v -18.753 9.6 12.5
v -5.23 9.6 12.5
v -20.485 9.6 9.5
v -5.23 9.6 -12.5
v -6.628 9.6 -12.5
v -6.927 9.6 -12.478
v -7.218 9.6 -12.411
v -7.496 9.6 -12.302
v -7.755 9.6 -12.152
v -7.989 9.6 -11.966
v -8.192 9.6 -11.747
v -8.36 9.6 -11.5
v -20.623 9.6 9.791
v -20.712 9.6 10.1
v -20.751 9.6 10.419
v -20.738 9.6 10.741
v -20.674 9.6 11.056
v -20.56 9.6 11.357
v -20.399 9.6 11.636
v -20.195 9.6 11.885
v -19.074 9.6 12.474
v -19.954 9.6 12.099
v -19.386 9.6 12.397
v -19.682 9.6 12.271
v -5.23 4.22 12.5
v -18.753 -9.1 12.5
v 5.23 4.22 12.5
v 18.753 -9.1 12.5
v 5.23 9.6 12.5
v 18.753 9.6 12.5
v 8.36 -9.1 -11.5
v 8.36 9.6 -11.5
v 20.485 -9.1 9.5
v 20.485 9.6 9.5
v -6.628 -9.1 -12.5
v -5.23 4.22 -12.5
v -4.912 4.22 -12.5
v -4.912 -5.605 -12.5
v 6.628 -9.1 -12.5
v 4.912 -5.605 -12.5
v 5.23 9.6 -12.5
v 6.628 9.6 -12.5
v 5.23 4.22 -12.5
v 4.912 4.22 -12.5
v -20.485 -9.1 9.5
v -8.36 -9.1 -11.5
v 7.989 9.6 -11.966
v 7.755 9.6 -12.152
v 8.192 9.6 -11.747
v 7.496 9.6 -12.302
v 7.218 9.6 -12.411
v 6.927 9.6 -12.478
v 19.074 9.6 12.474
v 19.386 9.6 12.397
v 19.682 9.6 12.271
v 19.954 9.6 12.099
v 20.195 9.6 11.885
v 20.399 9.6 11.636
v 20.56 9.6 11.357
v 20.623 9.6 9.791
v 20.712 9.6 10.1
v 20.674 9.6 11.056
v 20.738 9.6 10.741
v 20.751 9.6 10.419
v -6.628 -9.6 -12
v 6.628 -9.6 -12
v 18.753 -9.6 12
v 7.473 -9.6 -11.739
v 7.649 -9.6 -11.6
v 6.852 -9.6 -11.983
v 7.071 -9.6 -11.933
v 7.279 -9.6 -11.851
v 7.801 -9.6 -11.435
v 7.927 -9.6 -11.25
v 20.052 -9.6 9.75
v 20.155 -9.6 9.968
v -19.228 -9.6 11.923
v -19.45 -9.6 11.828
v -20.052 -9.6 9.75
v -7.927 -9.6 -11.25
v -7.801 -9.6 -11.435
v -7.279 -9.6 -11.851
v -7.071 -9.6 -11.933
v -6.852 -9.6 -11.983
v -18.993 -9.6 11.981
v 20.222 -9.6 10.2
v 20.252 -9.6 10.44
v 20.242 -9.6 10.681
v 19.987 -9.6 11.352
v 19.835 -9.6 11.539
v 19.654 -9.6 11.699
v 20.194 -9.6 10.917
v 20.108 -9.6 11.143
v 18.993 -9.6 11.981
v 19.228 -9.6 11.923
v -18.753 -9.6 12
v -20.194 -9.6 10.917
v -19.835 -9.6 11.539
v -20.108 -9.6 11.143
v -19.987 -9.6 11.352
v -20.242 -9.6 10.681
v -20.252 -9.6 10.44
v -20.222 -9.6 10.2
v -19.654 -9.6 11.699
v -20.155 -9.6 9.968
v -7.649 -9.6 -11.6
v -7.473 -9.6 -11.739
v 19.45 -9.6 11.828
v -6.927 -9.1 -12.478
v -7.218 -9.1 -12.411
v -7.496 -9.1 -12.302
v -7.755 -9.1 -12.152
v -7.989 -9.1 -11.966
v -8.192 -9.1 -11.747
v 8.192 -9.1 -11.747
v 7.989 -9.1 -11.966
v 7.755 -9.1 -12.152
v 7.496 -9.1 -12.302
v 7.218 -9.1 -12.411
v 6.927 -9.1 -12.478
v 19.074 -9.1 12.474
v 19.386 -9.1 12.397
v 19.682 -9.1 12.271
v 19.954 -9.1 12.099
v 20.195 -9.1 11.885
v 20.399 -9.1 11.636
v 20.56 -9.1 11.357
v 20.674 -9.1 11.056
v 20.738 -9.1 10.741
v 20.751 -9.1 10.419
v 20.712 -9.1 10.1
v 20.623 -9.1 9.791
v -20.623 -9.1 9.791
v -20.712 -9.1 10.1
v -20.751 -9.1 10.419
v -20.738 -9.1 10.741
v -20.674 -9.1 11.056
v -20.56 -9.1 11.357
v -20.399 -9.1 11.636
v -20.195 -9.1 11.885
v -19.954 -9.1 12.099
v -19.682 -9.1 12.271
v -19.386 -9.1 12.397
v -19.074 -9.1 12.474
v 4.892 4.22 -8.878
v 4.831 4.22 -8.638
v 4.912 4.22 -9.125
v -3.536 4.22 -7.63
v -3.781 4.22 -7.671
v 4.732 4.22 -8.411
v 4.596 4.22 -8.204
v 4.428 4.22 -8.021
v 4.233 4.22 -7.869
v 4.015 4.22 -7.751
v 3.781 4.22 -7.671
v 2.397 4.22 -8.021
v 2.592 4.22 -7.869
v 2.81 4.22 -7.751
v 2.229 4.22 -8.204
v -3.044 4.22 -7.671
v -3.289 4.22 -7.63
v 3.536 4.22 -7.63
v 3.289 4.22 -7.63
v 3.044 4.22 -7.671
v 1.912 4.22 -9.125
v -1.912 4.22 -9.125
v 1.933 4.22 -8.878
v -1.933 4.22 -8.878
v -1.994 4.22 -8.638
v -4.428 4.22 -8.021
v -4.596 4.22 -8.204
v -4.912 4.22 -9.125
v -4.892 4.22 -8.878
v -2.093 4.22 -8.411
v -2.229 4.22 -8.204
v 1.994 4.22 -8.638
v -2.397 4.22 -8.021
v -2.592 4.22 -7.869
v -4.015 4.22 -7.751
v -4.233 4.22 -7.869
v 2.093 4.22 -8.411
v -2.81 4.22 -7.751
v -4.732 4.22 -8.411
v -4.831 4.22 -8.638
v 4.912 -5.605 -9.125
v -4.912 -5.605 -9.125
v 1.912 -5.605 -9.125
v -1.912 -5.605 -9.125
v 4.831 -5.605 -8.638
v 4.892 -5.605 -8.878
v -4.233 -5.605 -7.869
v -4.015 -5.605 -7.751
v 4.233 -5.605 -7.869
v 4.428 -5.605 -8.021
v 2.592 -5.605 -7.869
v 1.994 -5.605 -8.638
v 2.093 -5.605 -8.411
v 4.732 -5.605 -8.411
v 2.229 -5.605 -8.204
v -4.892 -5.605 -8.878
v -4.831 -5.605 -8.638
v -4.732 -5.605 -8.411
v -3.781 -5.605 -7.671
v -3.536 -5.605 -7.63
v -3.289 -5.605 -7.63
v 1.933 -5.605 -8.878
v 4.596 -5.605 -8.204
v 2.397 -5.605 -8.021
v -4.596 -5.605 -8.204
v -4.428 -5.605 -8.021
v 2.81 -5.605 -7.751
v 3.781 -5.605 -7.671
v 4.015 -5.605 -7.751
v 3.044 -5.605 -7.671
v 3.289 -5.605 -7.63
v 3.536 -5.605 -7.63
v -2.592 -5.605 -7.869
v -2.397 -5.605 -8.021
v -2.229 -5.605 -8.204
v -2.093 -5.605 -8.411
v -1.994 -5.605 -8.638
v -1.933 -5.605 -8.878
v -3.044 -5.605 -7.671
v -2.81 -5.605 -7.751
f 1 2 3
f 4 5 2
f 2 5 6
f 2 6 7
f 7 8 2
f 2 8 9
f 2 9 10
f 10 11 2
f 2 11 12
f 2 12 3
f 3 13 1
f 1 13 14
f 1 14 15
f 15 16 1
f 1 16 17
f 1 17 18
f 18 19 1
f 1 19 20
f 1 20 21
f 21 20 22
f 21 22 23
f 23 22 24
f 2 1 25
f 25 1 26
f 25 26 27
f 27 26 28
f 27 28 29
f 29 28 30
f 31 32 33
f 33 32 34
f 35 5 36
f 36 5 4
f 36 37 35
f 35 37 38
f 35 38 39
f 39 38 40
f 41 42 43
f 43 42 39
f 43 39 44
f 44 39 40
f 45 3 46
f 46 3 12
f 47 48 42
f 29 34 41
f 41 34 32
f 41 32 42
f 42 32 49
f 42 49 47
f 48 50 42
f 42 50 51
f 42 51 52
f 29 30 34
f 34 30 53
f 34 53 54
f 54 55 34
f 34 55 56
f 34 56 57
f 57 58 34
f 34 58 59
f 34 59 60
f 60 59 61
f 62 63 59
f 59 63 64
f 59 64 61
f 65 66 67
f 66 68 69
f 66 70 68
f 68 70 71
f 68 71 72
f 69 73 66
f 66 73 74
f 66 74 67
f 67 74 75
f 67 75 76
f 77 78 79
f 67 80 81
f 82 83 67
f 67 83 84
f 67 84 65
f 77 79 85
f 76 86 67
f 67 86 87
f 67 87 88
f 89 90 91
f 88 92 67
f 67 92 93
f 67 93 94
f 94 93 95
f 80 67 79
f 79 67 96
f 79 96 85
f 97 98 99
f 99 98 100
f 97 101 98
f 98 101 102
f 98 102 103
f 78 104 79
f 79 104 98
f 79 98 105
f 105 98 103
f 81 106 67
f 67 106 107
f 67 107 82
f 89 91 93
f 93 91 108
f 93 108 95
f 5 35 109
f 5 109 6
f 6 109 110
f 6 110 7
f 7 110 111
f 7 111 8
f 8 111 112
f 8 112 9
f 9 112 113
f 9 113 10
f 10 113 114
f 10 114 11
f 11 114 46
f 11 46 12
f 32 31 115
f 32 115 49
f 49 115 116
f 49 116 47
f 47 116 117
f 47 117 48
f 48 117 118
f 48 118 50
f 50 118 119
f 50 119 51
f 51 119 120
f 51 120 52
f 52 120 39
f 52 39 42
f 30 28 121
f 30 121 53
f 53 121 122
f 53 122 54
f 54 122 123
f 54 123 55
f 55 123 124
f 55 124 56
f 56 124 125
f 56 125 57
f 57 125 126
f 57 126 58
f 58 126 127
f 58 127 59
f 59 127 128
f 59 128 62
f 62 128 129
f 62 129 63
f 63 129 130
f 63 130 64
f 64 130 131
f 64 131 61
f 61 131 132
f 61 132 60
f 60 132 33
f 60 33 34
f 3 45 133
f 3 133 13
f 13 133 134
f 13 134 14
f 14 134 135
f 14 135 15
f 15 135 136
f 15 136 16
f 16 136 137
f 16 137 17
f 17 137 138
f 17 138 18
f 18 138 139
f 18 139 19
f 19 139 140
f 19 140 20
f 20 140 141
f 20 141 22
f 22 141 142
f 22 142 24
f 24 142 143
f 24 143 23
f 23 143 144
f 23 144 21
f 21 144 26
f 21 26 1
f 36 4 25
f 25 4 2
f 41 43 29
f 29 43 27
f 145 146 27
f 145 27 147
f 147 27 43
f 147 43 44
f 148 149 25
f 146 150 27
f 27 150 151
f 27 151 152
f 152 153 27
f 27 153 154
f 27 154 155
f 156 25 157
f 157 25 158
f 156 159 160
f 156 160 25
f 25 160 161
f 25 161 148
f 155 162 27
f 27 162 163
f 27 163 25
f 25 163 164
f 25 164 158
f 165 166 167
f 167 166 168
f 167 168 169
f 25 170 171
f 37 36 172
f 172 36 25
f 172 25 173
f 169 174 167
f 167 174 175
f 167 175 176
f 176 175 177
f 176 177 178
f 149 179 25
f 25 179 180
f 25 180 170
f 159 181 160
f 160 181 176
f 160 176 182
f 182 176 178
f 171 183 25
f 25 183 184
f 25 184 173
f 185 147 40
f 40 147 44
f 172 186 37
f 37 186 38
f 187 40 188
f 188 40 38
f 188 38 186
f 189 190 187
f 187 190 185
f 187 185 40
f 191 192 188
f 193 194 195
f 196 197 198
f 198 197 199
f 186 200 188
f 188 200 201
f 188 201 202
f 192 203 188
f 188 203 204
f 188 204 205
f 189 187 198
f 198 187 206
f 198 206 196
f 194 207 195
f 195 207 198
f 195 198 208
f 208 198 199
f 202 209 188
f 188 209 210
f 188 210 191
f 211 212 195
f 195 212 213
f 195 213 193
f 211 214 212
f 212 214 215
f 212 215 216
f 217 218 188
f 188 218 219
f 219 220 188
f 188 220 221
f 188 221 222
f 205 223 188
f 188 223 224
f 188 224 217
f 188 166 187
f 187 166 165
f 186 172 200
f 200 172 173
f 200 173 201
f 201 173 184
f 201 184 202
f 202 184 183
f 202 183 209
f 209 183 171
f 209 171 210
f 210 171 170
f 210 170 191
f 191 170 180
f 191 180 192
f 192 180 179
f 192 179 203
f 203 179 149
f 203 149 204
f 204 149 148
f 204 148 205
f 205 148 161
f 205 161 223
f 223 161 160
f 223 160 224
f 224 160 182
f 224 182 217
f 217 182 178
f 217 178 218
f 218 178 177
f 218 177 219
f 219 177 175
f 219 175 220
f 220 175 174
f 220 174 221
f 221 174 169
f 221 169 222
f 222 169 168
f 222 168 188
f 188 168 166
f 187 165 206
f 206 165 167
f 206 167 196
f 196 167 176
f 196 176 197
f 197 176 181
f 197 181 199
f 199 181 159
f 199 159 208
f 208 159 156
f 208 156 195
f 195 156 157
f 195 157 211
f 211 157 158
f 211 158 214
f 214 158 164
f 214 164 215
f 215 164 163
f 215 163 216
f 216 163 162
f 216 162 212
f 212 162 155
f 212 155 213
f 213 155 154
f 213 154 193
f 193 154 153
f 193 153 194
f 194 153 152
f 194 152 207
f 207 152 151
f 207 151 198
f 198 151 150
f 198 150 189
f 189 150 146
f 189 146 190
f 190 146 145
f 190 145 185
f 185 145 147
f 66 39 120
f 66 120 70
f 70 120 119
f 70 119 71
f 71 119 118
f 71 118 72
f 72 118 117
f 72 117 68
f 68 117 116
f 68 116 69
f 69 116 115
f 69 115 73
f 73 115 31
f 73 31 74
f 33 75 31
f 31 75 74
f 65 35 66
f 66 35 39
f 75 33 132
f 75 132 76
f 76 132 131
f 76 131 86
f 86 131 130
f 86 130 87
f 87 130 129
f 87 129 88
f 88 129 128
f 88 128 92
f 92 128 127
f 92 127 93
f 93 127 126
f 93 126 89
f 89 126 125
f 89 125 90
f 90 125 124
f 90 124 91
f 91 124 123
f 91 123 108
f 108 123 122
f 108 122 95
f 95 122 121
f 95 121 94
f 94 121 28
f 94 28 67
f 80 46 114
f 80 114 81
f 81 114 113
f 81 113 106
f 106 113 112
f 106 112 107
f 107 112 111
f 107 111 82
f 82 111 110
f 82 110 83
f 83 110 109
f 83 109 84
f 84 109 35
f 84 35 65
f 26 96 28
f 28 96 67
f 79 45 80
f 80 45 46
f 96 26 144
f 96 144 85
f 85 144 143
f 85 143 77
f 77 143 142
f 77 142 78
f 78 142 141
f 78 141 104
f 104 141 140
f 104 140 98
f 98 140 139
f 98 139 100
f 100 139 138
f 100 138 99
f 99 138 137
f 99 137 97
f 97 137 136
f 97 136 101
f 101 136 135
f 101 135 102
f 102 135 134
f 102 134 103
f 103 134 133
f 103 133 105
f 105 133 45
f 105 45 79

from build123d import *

# Parameters (mm, degrees)
BOSS_EXTRUDE1_DEPTH = 9.6
FILLET5_R           = 2
SKETCH7_W           = 10.46
SKETCH7_H           = 5.38
CUT_EXTRUDE6_DEPTH  = 34.879754173
SKETCH11_W          = 9.825
SKETCH11_H          = 9.825
CUT_EXTRUDE9_DEPTH  = 3.375
SKETCH12_R          = 1.5
CUT_EXTRUDE10_DEPTH = 9.825
CHAMFER1_SIZE       = 0.5


with BuildPart() as part:
    # Sketch1 → Boss-Extrude1 (new, symmetric)
    with BuildSketch(Plane(origin=(0, 0, 0), x_dir=(1, 0, 0), z_dir=(0, 1, 0))):
        Polygon((-14.297771125, -12.5), (14.297771125, -12.5), (22.216878365, -12.5), (7.783121635, 12.5), (-7.783121635, 12.5), (-22.216878365, -12.5), align=None)
    extrude(amount=BOSS_EXTRUDE1_DEPTH, both=True)

    # Fillet5
    fillet5_edges = [part.edges().sort_by_distance(p)[0] for p in [
        (-22.216878365, 0, 12.5),
        (-7.783121635, 0, -12.5),
        (7.783121635, 0, -12.5),
        (22.216878365, 0, 12.5),
    ]]
    fillet(fillet5_edges, radius=FILLET5_R)

    # Sketch7 → Cut-Extrude6 (cut, through all)
    with BuildSketch(Plane.XY.offset(12.5)):
        with Locations((0, 6.91)):
            Rectangle(SKETCH7_W, SKETCH7_H)
    extrude(amount=-CUT_EXTRUDE6_DEPTH, mode=Mode.SUBTRACT)

    # Sketch11 → Cut-Extrude9 (cut)
    with BuildSketch(Plane(origin=(0, 0, -12.5), x_dir=(-1, 0, 0), z_dir=(0, 0, -1))):
        with Locations((0, -0.6925)):
            Rectangle(SKETCH11_W, SKETCH11_H)
    extrude(amount=-CUT_EXTRUDE9_DEPTH, mode=Mode.SUBTRACT)

    # Sketch12 → Cut-Extrude10 (cut)
    with BuildSketch(Plane(origin=(0, 4.22, 0), x_dir=(1, 0, 0), z_dir=(0, 1, 0))):
        with Locations((3.4125, 9.125)):
            Circle(SKETCH12_R)
        with Locations((-3.4125, 9.125)):
            Circle(SKETCH12_R)
    extrude(amount=-CUT_EXTRUDE10_DEPTH, mode=Mode.SUBTRACT)

    # Chamfer1
    chamfer1_edges = [part.edges().sort_by_distance(p)[0] for p in [
        (-14.422649731, -9.6, -1),
        (0, -9.6, 12.5),
        (0, -9.6, -12.5),
        (14.422649731, -9.6, -1),
        (-20.484827557, -9.6, 11.5),
        (20.484827557, -9.6, 11.5),
        (7.628421097, -9.6, -12.232050808),
        (-7.628421097, -9.6, -12.232050808),
    ]]
    chamfer(chamfer1_edges, length=CHAMFER1_SIZE)


solid = part.part
